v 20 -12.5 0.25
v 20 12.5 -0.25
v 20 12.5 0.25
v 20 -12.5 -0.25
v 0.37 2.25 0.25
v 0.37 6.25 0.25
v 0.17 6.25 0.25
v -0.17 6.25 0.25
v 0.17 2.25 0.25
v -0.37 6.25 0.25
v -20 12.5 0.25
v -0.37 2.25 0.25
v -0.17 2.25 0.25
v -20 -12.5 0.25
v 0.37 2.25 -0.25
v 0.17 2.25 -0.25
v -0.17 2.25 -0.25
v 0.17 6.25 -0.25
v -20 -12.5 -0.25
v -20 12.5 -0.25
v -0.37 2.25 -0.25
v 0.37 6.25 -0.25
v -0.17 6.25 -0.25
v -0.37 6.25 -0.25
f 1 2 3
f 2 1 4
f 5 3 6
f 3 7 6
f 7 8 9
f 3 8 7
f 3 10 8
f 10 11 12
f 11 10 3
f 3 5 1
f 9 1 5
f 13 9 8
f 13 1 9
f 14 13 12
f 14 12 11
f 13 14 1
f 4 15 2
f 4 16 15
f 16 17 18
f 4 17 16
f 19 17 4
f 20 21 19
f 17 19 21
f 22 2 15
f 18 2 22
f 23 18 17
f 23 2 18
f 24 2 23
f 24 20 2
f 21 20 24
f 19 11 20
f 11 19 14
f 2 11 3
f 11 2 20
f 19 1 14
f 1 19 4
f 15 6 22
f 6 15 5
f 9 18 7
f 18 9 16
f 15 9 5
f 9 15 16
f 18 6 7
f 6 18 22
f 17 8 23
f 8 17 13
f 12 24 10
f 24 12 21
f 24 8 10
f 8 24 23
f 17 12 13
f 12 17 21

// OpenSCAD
module slit(t) {
    translate(t){
        rotate([0, 90, 0])  
            cube(size = [4, 4, 0.2], center = true);
    }
}



translate([0, 0, 0]) {
difference() {
    cube(size = [40, 25, 0.5], center = true);
    slit([0.27, 4.25, 0]);
    slit([-0.27, 4.25, 0]);

}}
